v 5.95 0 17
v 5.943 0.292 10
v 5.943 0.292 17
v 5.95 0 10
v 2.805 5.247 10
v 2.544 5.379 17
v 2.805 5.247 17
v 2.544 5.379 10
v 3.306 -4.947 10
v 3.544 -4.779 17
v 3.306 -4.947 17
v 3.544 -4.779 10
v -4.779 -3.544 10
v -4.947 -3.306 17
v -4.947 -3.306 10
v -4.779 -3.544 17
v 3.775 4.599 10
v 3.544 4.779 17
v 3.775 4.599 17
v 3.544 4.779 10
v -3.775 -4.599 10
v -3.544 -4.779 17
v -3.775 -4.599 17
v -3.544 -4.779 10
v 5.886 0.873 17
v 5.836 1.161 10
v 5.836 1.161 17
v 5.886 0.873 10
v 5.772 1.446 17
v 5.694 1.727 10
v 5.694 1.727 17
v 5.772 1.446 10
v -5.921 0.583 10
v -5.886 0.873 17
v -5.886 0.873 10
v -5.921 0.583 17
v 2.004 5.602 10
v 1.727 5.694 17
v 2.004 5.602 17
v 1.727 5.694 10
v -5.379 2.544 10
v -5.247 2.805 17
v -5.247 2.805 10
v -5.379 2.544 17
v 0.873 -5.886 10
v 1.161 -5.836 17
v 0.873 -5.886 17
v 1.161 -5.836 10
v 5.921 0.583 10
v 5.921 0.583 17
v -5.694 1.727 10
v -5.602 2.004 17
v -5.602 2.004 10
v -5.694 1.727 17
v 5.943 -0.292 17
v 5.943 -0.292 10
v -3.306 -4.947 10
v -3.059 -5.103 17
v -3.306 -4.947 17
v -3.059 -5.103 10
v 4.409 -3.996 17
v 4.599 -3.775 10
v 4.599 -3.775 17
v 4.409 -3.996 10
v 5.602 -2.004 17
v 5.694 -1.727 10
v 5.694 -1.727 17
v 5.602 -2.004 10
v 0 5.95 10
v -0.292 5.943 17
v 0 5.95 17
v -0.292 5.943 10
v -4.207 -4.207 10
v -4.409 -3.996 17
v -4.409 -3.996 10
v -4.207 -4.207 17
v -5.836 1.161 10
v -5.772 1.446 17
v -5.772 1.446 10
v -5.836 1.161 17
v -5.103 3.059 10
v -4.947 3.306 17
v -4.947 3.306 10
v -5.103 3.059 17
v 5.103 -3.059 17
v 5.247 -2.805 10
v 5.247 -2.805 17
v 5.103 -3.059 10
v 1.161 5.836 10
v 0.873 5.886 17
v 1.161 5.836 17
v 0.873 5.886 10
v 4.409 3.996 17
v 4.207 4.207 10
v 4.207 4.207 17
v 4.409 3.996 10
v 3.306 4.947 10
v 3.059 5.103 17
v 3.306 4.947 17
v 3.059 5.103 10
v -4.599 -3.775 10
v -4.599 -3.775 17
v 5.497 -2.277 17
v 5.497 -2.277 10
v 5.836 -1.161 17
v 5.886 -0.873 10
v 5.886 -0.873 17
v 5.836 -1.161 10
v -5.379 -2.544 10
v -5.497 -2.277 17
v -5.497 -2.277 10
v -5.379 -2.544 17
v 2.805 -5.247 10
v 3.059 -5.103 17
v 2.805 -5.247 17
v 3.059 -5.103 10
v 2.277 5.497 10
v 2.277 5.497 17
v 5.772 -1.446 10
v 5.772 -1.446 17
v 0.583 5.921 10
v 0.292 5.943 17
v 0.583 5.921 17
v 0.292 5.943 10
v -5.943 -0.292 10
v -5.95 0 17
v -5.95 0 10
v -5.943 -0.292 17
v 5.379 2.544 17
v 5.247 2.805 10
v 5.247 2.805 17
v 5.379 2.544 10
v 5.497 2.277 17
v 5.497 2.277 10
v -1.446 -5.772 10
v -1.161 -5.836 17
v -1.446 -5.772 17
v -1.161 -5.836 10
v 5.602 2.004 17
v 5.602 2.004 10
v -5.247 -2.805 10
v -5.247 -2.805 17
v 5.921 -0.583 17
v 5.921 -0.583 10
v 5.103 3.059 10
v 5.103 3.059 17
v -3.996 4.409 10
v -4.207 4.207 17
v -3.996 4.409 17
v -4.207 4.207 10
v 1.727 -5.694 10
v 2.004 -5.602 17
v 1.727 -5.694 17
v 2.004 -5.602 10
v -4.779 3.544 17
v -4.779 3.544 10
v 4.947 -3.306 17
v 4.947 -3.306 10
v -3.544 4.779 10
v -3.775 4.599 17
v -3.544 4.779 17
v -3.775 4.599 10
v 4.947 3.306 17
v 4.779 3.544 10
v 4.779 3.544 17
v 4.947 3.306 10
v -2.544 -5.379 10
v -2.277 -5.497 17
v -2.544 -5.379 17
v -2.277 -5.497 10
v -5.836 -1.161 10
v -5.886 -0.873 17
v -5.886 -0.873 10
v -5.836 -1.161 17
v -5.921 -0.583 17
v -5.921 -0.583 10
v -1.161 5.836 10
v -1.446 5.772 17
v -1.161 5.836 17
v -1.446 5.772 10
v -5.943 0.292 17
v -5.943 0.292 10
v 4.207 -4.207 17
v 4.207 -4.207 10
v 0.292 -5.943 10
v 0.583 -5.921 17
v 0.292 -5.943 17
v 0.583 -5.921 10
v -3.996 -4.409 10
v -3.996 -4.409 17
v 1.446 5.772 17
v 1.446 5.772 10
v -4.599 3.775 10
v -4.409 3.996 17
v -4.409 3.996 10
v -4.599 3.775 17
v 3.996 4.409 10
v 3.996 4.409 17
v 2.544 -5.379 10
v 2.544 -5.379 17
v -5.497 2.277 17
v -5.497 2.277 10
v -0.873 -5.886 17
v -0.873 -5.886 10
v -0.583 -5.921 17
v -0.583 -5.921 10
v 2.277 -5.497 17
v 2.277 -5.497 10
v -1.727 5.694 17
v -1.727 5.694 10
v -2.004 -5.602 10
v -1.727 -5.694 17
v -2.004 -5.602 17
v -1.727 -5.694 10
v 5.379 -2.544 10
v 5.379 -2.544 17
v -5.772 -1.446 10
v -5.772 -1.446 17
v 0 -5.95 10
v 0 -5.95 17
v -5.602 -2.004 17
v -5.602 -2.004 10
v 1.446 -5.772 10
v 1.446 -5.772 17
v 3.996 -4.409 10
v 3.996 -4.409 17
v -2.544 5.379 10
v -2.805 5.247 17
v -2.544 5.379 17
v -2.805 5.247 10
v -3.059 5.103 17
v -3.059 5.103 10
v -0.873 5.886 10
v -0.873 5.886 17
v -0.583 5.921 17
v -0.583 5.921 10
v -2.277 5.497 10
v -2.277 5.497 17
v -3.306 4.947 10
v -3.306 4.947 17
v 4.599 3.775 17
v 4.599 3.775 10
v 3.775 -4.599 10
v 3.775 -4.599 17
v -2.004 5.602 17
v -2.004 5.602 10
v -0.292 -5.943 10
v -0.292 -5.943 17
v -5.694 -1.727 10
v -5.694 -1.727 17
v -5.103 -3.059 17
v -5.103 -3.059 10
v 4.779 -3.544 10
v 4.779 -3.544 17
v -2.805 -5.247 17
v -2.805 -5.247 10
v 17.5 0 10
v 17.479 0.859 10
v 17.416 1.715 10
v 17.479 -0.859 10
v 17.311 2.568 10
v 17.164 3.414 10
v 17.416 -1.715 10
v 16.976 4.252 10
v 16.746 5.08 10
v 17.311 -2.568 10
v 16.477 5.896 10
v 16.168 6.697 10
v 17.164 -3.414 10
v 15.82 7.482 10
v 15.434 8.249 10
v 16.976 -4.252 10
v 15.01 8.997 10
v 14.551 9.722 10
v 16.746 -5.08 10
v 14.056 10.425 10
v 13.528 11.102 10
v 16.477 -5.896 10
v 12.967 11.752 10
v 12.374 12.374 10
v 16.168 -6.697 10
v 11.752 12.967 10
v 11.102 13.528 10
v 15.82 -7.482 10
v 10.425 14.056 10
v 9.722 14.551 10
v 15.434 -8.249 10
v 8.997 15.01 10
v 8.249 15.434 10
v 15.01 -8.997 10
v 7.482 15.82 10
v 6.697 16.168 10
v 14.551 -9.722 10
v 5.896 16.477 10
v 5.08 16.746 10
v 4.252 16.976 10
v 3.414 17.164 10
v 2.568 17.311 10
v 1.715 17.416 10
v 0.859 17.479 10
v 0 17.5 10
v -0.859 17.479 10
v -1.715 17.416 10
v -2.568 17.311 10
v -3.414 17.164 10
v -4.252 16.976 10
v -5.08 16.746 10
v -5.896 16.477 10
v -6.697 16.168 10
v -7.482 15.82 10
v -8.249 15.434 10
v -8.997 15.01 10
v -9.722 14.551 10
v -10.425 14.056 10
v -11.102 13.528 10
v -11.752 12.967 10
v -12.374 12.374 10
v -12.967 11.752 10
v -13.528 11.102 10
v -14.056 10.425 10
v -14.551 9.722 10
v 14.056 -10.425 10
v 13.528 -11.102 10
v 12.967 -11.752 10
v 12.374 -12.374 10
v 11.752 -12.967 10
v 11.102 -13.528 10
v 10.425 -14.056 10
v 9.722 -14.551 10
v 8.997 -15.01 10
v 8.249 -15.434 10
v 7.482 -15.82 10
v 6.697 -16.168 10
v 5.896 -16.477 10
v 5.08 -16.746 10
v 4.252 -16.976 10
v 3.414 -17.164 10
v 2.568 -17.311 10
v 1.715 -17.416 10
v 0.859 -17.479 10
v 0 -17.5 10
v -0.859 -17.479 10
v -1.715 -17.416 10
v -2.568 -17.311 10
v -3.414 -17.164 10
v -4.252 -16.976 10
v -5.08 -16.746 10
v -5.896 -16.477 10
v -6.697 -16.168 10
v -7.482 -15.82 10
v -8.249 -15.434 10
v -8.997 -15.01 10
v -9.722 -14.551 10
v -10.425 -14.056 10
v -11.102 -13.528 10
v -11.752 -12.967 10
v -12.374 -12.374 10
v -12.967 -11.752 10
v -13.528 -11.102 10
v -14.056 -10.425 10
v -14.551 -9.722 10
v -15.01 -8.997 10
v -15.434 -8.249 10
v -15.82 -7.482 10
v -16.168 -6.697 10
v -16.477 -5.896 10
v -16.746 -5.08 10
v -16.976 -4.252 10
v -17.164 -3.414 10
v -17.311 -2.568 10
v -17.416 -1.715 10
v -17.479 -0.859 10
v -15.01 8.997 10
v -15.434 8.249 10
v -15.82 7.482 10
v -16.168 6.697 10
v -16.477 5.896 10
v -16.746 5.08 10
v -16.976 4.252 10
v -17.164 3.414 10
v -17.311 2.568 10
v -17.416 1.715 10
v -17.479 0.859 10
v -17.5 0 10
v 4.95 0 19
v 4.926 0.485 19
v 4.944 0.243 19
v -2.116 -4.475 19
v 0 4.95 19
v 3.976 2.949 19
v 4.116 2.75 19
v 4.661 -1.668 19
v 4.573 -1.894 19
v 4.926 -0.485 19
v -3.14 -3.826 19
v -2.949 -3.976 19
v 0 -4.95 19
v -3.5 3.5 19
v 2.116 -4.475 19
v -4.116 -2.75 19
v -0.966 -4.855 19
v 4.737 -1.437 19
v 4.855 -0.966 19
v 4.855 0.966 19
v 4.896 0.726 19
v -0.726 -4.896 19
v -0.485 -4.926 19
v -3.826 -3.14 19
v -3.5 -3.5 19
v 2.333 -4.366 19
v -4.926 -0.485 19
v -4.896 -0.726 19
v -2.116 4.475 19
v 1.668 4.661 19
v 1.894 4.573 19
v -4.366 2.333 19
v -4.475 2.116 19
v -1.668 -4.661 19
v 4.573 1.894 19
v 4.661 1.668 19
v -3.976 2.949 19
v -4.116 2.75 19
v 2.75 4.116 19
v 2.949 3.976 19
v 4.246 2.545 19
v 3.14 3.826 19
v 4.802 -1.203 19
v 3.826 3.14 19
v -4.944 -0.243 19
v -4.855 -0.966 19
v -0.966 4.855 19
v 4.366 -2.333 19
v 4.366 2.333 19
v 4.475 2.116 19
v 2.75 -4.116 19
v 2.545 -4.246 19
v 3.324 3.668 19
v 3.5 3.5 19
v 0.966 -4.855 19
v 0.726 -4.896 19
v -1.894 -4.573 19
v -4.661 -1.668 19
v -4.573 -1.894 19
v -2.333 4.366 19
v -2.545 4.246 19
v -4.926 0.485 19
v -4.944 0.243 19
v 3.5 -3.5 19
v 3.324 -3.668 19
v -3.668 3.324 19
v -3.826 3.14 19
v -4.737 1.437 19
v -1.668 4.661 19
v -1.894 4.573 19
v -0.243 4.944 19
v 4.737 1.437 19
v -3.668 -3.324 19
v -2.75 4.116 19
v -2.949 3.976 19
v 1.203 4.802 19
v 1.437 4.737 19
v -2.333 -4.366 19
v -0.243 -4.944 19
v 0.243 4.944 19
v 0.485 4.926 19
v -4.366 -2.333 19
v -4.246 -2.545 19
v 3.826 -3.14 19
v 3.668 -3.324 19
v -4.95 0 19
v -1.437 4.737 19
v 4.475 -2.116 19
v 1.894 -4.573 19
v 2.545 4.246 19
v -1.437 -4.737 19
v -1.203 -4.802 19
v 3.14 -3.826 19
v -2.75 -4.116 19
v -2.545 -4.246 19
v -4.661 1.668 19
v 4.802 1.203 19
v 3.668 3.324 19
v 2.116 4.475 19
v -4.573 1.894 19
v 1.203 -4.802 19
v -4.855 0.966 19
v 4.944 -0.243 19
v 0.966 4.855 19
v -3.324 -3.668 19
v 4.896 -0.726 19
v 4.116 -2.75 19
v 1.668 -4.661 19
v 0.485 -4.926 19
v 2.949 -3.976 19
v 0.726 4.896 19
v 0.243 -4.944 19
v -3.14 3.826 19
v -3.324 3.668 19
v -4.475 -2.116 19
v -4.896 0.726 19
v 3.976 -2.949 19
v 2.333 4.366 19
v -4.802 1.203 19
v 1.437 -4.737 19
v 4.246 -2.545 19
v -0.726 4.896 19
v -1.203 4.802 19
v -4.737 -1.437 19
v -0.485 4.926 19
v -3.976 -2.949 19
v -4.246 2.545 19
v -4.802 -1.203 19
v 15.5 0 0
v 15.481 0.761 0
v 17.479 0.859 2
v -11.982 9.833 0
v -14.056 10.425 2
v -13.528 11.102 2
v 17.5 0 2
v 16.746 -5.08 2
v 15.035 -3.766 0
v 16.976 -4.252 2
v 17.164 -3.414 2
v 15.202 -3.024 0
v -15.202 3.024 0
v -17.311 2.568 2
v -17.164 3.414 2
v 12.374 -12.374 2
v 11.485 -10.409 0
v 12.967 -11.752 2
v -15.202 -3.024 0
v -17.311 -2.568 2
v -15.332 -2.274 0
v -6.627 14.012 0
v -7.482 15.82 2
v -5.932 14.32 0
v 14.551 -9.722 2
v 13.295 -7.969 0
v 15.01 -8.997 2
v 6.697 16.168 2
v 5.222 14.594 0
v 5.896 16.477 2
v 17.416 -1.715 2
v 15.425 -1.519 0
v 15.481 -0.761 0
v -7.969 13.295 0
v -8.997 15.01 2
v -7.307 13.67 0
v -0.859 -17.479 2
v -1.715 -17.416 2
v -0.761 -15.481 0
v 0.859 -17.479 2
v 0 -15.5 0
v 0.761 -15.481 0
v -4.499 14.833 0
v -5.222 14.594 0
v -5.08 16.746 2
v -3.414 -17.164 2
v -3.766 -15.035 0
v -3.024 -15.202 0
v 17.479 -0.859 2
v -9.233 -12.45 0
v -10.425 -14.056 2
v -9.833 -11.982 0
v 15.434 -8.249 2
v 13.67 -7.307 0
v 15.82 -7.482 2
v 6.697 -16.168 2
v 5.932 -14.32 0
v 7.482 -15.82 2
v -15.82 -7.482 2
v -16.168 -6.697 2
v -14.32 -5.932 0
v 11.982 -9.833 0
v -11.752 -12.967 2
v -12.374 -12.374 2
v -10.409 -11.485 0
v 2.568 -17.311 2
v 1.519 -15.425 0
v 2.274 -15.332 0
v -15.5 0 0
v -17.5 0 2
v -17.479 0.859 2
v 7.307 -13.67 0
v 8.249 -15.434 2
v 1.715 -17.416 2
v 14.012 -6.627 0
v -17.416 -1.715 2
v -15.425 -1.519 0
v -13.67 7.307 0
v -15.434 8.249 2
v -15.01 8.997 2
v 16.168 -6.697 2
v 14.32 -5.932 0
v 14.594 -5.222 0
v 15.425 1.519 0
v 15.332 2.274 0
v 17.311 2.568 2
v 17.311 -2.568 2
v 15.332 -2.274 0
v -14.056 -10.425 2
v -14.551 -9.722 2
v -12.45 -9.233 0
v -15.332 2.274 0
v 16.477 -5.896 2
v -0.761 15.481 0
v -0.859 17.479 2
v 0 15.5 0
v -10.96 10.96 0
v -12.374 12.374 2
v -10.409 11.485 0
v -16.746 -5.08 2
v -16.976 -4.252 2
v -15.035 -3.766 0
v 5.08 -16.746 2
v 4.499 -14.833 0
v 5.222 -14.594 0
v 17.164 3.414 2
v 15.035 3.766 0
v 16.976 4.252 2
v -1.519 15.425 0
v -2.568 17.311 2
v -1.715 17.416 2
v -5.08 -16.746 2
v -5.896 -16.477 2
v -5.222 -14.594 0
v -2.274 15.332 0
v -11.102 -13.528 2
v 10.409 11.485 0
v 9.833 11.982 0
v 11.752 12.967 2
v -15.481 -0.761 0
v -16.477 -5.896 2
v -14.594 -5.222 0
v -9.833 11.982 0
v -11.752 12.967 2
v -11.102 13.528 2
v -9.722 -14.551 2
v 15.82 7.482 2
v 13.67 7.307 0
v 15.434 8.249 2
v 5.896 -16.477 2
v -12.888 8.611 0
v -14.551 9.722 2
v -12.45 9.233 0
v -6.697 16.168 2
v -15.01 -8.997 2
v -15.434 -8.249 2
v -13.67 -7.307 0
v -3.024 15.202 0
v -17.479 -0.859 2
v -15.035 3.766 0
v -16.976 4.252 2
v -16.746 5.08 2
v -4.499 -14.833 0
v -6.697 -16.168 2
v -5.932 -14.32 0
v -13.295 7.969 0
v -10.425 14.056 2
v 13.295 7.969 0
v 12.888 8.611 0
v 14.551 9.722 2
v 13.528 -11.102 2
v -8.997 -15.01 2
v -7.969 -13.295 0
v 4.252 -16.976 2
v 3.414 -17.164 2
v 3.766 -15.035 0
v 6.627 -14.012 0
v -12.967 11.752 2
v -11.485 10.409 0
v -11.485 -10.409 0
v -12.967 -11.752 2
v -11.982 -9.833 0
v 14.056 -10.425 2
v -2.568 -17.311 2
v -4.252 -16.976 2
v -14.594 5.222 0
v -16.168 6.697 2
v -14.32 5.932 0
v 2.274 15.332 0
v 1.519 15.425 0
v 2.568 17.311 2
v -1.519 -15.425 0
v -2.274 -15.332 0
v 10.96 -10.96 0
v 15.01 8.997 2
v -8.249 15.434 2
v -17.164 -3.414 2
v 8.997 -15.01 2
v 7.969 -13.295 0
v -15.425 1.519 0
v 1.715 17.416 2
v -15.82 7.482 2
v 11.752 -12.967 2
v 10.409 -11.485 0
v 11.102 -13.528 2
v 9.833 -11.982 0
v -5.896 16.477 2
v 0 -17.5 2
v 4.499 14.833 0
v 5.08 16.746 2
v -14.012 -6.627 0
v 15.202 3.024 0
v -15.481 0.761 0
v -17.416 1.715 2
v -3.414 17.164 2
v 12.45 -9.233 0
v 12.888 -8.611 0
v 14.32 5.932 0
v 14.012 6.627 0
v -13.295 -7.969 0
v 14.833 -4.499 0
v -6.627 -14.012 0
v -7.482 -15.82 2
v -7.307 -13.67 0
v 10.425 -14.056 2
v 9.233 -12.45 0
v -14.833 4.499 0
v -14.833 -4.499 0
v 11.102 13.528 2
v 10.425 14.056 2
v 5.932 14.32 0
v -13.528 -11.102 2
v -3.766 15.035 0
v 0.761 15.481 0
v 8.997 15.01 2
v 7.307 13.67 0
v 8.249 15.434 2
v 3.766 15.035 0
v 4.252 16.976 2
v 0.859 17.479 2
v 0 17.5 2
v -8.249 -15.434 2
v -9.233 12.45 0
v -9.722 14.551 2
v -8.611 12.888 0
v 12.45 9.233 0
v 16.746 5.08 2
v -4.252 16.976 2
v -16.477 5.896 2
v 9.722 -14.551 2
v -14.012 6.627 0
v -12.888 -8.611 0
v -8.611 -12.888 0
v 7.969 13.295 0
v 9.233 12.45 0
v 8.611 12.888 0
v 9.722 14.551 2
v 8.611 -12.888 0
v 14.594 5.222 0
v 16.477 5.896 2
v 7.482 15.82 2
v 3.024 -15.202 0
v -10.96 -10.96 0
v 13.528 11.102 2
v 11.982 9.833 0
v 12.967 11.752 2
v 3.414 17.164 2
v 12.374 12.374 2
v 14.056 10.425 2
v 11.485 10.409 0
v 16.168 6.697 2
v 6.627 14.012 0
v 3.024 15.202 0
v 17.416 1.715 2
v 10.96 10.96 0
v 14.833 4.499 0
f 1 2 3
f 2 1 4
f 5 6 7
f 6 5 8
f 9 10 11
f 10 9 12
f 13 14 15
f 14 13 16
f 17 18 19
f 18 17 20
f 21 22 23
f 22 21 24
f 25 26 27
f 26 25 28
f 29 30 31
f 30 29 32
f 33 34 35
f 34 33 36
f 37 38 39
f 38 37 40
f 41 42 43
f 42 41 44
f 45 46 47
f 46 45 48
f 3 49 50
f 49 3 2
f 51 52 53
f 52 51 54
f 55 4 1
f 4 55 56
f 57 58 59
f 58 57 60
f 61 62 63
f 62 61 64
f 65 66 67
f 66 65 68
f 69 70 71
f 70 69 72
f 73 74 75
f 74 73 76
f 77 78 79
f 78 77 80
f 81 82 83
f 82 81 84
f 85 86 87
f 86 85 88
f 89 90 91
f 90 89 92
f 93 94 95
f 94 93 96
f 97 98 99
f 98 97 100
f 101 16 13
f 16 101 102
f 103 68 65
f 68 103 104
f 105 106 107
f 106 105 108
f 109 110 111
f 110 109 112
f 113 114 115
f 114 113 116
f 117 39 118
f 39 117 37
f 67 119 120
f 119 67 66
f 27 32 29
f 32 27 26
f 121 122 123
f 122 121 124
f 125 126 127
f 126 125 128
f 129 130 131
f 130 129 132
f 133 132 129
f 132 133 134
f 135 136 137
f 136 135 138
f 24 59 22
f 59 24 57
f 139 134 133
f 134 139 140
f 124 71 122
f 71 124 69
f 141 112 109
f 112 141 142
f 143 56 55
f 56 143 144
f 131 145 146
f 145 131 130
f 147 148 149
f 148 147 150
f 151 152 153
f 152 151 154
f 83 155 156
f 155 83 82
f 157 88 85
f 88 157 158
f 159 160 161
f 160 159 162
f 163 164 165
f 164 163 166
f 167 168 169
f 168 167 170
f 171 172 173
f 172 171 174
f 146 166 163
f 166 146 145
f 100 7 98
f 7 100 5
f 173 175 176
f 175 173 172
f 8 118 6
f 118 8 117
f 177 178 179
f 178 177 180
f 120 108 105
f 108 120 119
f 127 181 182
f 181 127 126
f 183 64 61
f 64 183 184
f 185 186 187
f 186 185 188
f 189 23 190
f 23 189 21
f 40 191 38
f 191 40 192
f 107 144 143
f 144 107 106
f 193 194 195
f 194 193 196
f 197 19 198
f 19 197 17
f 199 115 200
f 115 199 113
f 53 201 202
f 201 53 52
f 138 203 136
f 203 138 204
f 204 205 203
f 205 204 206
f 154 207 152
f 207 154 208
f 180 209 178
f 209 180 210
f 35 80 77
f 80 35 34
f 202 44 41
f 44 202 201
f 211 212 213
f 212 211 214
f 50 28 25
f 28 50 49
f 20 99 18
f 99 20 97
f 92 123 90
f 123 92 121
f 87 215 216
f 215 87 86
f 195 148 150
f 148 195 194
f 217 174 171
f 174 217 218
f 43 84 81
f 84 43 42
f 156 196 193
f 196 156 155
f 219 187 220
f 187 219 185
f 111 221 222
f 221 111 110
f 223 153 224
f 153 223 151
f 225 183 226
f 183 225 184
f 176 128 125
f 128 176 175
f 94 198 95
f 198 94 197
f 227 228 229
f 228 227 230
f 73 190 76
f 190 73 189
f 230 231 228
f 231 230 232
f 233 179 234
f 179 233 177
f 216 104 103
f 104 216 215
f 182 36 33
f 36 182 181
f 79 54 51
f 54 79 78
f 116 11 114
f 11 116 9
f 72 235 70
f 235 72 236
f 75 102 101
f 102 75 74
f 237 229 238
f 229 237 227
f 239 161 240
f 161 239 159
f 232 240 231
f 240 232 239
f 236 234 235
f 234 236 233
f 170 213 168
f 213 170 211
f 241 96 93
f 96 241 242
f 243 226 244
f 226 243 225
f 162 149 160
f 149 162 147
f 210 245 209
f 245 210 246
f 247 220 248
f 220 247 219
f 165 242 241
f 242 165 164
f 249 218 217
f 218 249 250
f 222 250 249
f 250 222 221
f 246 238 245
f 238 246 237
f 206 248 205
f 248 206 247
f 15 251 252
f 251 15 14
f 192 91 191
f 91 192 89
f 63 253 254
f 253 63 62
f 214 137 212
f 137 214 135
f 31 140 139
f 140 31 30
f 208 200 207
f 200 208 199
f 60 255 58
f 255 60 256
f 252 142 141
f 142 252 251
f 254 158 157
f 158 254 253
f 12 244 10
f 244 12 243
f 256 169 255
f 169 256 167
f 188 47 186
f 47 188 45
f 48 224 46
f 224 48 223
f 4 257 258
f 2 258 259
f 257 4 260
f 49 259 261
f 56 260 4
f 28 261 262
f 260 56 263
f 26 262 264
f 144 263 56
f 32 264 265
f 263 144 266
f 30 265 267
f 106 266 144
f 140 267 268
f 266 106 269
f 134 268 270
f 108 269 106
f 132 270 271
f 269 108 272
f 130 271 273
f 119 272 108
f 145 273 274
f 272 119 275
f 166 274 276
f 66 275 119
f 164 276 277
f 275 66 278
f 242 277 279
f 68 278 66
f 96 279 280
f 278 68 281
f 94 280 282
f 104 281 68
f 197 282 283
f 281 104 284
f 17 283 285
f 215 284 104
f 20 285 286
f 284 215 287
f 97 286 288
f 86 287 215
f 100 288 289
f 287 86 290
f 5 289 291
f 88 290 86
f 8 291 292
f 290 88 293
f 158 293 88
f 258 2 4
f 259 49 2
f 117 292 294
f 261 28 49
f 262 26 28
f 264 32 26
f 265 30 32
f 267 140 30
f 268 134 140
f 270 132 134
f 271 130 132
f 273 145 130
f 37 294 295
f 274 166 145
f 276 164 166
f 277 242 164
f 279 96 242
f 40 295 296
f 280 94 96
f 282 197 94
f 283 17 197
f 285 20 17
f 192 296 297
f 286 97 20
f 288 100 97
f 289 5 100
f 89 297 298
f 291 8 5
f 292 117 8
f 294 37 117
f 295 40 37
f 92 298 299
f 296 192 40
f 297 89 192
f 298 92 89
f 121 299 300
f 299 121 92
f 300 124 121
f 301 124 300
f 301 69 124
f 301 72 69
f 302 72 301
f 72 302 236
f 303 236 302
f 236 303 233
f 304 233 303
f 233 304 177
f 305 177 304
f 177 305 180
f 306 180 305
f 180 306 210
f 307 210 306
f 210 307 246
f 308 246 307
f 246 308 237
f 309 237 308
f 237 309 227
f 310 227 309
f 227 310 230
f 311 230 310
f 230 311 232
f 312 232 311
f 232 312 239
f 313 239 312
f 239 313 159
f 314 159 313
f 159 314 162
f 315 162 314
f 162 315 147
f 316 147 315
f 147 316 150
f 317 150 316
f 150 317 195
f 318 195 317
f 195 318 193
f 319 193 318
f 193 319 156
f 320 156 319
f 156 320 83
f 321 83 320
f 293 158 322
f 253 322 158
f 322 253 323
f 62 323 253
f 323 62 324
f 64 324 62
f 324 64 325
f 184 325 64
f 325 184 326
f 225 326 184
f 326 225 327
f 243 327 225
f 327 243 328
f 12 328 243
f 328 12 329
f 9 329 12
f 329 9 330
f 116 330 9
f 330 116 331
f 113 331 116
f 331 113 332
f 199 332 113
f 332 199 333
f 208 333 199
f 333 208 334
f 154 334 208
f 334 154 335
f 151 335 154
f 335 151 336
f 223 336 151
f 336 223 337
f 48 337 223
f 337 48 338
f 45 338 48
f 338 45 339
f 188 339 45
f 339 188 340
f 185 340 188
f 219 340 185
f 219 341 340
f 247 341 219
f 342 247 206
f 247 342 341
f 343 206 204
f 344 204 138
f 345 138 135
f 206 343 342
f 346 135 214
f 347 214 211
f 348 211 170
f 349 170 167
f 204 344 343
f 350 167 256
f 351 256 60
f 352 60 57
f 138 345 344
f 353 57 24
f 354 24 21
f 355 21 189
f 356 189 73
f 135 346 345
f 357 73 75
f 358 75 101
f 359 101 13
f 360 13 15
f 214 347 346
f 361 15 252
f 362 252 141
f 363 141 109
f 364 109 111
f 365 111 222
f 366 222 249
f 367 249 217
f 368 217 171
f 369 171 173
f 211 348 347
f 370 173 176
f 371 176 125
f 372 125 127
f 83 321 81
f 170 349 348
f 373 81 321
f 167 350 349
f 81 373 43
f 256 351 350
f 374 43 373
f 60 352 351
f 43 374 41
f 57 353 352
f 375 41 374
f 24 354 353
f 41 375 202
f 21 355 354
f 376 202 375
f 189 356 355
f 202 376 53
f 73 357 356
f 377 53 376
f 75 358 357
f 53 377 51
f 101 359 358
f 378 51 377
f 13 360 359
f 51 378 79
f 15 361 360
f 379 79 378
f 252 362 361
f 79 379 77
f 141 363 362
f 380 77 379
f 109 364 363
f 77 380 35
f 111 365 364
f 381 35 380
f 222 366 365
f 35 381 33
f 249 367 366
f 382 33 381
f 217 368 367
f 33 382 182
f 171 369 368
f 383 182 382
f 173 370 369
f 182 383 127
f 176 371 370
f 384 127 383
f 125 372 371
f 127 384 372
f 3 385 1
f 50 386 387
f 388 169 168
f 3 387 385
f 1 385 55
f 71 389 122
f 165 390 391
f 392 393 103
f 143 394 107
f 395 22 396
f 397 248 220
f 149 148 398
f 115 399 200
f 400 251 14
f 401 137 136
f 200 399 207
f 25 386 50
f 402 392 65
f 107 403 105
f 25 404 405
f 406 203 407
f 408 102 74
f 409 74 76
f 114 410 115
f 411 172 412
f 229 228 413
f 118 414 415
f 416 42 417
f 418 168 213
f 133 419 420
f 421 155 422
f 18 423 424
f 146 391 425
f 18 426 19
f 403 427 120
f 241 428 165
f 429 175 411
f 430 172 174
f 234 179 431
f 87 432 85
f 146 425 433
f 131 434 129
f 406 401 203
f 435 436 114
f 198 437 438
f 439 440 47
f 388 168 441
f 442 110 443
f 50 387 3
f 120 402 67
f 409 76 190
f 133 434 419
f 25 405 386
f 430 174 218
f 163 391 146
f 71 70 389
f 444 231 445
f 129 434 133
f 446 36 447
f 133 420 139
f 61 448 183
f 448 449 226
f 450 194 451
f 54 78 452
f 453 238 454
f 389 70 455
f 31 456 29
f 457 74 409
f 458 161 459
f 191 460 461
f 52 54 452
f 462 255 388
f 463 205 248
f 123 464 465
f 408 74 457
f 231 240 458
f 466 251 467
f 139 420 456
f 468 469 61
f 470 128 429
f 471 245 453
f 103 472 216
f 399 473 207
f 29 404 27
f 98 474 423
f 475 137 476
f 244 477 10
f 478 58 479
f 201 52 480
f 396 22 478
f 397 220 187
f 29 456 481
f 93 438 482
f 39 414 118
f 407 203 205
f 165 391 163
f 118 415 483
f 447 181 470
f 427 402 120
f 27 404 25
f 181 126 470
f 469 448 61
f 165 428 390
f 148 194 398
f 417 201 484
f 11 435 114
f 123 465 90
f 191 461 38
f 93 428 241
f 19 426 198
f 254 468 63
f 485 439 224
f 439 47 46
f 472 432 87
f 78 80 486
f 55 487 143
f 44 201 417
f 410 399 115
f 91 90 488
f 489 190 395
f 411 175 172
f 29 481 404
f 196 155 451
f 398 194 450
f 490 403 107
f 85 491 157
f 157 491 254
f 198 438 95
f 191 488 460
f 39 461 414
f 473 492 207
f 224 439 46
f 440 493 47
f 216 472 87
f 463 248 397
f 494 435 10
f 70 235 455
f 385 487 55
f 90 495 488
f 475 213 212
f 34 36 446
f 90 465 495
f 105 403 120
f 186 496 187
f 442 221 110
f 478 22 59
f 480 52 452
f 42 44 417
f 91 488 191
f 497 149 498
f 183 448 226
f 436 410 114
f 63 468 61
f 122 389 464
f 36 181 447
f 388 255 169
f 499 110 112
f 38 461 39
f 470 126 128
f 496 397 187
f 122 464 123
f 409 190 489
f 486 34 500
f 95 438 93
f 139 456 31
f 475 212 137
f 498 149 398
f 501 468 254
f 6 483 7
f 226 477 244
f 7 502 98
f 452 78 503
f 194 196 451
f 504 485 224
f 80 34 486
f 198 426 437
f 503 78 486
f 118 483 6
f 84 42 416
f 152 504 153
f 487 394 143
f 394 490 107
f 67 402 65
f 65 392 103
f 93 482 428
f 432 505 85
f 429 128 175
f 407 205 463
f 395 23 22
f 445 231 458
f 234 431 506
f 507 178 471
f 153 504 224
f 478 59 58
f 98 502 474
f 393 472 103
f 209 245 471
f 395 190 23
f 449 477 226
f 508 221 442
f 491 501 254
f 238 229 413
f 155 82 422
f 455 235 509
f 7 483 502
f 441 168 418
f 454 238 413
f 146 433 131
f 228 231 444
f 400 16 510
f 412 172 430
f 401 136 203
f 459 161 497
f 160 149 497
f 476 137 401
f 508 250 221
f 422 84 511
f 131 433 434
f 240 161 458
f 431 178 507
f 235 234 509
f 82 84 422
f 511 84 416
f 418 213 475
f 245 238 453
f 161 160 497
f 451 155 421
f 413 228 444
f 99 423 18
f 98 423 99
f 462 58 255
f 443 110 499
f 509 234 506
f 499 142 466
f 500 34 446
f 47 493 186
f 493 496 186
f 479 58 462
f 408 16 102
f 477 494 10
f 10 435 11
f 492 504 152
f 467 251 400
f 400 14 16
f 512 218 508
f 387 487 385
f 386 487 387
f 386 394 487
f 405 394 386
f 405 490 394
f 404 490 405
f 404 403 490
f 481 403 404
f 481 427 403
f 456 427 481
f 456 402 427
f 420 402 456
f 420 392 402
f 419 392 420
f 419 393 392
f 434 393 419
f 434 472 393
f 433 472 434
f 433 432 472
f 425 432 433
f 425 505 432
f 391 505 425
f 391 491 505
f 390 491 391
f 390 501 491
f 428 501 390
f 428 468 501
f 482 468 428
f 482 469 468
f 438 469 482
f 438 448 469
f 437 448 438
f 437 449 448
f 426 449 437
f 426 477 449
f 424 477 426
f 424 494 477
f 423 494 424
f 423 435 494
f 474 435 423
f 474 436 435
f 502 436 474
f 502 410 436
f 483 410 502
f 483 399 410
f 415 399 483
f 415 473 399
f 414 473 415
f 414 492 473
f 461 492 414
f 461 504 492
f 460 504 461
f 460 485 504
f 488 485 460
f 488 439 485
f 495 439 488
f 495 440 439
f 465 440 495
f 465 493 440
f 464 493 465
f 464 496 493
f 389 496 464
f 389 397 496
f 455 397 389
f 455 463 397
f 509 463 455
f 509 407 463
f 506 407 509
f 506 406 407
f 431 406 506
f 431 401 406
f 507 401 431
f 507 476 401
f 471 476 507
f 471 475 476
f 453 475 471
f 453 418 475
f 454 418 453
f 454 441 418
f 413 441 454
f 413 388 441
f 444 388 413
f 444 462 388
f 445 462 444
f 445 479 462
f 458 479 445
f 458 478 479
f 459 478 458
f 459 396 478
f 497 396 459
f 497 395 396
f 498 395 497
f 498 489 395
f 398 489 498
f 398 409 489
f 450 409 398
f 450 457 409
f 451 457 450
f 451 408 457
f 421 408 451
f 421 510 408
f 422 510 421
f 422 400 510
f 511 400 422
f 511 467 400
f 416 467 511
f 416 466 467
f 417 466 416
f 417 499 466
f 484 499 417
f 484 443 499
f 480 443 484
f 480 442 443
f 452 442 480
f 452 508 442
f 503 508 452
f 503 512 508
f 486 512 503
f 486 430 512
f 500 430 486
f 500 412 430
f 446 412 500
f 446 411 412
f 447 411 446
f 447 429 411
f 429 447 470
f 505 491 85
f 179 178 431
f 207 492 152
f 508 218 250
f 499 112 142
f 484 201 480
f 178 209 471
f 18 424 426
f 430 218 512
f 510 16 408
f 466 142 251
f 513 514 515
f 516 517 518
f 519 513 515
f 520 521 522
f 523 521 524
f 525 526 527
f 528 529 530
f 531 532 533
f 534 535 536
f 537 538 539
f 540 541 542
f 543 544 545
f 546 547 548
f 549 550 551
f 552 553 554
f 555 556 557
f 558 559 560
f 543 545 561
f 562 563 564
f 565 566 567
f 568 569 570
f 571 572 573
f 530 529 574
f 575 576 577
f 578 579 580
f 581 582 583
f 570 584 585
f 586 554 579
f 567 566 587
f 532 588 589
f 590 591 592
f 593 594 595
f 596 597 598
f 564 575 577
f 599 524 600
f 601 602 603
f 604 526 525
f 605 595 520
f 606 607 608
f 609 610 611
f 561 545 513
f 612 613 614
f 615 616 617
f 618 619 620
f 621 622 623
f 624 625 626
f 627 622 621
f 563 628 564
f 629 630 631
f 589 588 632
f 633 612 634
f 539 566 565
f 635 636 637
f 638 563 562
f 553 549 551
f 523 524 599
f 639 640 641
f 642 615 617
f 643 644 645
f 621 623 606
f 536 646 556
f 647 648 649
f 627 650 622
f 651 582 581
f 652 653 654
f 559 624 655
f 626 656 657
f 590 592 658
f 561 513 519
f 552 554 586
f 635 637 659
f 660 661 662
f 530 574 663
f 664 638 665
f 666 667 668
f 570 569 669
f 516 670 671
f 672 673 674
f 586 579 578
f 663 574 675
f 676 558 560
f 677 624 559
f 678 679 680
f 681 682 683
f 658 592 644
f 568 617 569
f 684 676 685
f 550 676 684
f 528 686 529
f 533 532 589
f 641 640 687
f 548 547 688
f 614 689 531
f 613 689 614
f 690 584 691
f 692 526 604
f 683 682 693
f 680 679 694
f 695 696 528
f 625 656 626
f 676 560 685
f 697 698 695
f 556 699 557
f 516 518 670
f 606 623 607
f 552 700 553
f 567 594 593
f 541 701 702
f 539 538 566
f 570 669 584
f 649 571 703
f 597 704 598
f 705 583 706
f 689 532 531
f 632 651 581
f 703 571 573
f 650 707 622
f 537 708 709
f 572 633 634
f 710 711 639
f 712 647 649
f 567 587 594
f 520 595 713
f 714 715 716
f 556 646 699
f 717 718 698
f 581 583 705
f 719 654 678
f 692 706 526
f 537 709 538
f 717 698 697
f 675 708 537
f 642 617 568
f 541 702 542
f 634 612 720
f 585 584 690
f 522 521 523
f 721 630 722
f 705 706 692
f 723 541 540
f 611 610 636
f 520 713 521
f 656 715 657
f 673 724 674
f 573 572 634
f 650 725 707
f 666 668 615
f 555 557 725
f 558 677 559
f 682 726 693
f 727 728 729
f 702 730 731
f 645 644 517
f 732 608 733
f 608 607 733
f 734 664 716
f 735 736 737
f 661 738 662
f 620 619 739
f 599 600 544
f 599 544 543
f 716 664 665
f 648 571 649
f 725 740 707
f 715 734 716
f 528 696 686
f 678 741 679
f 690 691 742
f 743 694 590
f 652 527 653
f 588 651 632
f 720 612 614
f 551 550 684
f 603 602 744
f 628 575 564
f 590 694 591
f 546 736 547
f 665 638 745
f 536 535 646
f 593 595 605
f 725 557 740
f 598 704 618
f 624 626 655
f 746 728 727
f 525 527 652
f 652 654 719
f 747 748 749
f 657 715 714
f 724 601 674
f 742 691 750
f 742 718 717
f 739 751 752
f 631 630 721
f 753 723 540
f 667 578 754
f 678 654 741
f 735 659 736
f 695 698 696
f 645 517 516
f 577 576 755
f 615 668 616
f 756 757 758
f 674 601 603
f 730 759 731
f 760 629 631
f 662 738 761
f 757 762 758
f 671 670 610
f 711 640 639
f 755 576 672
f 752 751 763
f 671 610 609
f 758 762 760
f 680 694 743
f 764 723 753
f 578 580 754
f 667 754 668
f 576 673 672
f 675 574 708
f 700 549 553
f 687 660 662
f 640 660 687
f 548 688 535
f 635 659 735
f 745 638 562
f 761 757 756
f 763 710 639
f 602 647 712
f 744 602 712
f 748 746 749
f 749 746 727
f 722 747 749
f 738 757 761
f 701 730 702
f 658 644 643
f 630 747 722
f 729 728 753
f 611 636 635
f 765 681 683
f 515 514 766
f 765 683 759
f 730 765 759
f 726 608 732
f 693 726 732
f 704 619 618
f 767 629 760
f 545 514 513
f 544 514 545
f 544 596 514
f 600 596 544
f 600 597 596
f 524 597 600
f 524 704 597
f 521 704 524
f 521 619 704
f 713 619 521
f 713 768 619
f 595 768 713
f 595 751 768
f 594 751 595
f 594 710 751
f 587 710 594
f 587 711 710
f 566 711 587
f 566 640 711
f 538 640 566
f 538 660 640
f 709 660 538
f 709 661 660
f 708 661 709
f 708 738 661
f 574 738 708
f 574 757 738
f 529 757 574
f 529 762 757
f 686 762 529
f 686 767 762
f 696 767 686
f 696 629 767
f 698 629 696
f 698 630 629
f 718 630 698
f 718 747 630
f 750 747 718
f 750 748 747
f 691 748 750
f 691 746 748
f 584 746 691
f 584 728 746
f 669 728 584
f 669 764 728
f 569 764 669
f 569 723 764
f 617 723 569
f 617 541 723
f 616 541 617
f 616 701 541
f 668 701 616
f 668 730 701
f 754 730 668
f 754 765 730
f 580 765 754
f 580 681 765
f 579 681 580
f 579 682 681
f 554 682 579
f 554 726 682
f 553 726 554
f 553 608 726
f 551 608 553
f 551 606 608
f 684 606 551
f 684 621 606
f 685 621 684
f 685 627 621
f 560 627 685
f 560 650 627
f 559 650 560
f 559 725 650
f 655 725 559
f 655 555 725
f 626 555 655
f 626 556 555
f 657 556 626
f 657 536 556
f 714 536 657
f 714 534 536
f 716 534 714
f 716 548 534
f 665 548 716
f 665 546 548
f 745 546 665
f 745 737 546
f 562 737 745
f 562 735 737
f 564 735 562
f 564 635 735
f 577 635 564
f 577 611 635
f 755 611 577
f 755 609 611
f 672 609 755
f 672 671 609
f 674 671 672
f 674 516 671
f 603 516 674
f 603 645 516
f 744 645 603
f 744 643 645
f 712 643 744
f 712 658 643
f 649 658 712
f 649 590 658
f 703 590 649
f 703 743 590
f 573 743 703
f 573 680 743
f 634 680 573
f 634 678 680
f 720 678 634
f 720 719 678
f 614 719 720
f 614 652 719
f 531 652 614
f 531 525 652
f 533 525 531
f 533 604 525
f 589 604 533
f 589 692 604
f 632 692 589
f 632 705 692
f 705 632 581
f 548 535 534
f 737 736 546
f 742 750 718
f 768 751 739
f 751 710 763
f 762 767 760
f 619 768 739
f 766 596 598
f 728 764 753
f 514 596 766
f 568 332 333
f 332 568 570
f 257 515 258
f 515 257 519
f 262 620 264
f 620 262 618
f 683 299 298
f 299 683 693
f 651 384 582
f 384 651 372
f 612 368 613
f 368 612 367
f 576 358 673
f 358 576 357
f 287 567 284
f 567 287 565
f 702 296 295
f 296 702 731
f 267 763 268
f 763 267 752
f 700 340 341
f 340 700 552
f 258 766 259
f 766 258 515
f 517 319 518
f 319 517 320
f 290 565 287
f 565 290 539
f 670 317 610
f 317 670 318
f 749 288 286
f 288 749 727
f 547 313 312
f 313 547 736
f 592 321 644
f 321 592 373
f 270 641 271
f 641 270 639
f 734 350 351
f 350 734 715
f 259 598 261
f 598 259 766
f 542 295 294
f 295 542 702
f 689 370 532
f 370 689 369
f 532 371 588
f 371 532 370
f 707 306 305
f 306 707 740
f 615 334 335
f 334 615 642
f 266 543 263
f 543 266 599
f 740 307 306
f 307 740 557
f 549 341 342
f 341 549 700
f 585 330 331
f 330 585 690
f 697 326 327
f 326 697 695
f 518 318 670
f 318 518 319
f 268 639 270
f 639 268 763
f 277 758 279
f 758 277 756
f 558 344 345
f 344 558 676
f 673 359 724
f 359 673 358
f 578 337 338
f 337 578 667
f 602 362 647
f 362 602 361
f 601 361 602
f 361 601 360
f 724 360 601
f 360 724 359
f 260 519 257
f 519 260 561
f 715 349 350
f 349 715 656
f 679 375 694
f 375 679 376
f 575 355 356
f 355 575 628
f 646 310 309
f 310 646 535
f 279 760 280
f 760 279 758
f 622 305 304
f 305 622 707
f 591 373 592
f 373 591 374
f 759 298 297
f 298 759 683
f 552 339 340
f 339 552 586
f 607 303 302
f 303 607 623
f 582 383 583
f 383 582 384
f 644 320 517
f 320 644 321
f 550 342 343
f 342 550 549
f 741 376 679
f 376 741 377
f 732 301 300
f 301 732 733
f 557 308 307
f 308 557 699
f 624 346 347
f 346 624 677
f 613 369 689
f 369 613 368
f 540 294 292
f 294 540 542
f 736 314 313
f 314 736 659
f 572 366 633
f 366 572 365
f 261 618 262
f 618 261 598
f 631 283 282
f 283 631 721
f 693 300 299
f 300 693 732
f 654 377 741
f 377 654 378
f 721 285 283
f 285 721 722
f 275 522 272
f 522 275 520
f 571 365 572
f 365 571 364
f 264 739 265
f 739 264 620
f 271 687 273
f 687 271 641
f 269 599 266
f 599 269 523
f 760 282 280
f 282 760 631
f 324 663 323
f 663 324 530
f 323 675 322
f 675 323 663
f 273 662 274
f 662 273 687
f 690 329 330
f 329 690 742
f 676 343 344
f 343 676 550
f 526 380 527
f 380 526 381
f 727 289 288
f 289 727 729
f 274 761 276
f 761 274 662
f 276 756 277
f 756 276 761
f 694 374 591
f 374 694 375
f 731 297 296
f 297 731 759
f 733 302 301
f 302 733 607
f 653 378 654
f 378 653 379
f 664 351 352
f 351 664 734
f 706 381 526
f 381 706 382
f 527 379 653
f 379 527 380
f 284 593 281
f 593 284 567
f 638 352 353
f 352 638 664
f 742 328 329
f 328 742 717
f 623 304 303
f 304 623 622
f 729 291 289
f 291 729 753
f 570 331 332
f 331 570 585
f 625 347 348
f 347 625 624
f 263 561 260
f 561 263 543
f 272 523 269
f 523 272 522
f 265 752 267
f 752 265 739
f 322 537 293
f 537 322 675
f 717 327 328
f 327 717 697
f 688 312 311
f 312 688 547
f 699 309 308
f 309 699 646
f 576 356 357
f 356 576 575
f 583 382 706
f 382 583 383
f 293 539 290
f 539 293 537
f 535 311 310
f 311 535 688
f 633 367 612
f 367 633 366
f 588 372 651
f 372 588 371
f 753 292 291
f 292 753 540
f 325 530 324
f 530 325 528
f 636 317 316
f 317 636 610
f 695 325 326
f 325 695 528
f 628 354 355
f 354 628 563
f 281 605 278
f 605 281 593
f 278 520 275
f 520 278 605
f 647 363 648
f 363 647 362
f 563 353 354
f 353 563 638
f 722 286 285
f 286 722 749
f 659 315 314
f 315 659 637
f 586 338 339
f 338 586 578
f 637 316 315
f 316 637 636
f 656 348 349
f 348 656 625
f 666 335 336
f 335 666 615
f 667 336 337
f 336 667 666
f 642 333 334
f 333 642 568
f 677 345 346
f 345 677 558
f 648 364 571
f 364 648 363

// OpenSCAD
// file: common.scad
// Model by Isaac Foraker
//
// Released under Creative Commons Attribution 4.0 International (CC BY 4.0)
// https://creativecommons.org/licenses/by/4.0/

$fn = 128;

// Wheel info
wheel_width = 4;
wheel_rad = 5;
wheel_hole_rad = 2;

// Track info
track_wall_thickness = 2;
track_wall_height = 5;
track_width = wheel_width + 0.5; // Need enough room for the wheel to fit in the arc of the circle
track_rad = 70;

// Simple ring creator.  `rad` is the inside radius of the ring.
module ring(rad, thickness, height) {
    rotate_extrude(convexity=10) translate([rad,0,0]) square([thickness,height]);
}
// main file
// Model by Isaac Foraker
//
// Released under Creative Commons Attribution 4.0 International (CC BY 4.0)
// https://creativecommons.org/licenses/by/4.0/

include <common.scad>

h = track_wall_thickness+5;

cylinder(r1=15.5,r2=17.5,h=2);
translate([0,0,2]) cylinder(r=17.5, h=8);
translate([0,0,10]) {
    cylinder(r=5.95, h=h);
    translate([0,0,h])
        cylinder(r1=5.95, r2=4.95, h = track_wall_thickness);
}
